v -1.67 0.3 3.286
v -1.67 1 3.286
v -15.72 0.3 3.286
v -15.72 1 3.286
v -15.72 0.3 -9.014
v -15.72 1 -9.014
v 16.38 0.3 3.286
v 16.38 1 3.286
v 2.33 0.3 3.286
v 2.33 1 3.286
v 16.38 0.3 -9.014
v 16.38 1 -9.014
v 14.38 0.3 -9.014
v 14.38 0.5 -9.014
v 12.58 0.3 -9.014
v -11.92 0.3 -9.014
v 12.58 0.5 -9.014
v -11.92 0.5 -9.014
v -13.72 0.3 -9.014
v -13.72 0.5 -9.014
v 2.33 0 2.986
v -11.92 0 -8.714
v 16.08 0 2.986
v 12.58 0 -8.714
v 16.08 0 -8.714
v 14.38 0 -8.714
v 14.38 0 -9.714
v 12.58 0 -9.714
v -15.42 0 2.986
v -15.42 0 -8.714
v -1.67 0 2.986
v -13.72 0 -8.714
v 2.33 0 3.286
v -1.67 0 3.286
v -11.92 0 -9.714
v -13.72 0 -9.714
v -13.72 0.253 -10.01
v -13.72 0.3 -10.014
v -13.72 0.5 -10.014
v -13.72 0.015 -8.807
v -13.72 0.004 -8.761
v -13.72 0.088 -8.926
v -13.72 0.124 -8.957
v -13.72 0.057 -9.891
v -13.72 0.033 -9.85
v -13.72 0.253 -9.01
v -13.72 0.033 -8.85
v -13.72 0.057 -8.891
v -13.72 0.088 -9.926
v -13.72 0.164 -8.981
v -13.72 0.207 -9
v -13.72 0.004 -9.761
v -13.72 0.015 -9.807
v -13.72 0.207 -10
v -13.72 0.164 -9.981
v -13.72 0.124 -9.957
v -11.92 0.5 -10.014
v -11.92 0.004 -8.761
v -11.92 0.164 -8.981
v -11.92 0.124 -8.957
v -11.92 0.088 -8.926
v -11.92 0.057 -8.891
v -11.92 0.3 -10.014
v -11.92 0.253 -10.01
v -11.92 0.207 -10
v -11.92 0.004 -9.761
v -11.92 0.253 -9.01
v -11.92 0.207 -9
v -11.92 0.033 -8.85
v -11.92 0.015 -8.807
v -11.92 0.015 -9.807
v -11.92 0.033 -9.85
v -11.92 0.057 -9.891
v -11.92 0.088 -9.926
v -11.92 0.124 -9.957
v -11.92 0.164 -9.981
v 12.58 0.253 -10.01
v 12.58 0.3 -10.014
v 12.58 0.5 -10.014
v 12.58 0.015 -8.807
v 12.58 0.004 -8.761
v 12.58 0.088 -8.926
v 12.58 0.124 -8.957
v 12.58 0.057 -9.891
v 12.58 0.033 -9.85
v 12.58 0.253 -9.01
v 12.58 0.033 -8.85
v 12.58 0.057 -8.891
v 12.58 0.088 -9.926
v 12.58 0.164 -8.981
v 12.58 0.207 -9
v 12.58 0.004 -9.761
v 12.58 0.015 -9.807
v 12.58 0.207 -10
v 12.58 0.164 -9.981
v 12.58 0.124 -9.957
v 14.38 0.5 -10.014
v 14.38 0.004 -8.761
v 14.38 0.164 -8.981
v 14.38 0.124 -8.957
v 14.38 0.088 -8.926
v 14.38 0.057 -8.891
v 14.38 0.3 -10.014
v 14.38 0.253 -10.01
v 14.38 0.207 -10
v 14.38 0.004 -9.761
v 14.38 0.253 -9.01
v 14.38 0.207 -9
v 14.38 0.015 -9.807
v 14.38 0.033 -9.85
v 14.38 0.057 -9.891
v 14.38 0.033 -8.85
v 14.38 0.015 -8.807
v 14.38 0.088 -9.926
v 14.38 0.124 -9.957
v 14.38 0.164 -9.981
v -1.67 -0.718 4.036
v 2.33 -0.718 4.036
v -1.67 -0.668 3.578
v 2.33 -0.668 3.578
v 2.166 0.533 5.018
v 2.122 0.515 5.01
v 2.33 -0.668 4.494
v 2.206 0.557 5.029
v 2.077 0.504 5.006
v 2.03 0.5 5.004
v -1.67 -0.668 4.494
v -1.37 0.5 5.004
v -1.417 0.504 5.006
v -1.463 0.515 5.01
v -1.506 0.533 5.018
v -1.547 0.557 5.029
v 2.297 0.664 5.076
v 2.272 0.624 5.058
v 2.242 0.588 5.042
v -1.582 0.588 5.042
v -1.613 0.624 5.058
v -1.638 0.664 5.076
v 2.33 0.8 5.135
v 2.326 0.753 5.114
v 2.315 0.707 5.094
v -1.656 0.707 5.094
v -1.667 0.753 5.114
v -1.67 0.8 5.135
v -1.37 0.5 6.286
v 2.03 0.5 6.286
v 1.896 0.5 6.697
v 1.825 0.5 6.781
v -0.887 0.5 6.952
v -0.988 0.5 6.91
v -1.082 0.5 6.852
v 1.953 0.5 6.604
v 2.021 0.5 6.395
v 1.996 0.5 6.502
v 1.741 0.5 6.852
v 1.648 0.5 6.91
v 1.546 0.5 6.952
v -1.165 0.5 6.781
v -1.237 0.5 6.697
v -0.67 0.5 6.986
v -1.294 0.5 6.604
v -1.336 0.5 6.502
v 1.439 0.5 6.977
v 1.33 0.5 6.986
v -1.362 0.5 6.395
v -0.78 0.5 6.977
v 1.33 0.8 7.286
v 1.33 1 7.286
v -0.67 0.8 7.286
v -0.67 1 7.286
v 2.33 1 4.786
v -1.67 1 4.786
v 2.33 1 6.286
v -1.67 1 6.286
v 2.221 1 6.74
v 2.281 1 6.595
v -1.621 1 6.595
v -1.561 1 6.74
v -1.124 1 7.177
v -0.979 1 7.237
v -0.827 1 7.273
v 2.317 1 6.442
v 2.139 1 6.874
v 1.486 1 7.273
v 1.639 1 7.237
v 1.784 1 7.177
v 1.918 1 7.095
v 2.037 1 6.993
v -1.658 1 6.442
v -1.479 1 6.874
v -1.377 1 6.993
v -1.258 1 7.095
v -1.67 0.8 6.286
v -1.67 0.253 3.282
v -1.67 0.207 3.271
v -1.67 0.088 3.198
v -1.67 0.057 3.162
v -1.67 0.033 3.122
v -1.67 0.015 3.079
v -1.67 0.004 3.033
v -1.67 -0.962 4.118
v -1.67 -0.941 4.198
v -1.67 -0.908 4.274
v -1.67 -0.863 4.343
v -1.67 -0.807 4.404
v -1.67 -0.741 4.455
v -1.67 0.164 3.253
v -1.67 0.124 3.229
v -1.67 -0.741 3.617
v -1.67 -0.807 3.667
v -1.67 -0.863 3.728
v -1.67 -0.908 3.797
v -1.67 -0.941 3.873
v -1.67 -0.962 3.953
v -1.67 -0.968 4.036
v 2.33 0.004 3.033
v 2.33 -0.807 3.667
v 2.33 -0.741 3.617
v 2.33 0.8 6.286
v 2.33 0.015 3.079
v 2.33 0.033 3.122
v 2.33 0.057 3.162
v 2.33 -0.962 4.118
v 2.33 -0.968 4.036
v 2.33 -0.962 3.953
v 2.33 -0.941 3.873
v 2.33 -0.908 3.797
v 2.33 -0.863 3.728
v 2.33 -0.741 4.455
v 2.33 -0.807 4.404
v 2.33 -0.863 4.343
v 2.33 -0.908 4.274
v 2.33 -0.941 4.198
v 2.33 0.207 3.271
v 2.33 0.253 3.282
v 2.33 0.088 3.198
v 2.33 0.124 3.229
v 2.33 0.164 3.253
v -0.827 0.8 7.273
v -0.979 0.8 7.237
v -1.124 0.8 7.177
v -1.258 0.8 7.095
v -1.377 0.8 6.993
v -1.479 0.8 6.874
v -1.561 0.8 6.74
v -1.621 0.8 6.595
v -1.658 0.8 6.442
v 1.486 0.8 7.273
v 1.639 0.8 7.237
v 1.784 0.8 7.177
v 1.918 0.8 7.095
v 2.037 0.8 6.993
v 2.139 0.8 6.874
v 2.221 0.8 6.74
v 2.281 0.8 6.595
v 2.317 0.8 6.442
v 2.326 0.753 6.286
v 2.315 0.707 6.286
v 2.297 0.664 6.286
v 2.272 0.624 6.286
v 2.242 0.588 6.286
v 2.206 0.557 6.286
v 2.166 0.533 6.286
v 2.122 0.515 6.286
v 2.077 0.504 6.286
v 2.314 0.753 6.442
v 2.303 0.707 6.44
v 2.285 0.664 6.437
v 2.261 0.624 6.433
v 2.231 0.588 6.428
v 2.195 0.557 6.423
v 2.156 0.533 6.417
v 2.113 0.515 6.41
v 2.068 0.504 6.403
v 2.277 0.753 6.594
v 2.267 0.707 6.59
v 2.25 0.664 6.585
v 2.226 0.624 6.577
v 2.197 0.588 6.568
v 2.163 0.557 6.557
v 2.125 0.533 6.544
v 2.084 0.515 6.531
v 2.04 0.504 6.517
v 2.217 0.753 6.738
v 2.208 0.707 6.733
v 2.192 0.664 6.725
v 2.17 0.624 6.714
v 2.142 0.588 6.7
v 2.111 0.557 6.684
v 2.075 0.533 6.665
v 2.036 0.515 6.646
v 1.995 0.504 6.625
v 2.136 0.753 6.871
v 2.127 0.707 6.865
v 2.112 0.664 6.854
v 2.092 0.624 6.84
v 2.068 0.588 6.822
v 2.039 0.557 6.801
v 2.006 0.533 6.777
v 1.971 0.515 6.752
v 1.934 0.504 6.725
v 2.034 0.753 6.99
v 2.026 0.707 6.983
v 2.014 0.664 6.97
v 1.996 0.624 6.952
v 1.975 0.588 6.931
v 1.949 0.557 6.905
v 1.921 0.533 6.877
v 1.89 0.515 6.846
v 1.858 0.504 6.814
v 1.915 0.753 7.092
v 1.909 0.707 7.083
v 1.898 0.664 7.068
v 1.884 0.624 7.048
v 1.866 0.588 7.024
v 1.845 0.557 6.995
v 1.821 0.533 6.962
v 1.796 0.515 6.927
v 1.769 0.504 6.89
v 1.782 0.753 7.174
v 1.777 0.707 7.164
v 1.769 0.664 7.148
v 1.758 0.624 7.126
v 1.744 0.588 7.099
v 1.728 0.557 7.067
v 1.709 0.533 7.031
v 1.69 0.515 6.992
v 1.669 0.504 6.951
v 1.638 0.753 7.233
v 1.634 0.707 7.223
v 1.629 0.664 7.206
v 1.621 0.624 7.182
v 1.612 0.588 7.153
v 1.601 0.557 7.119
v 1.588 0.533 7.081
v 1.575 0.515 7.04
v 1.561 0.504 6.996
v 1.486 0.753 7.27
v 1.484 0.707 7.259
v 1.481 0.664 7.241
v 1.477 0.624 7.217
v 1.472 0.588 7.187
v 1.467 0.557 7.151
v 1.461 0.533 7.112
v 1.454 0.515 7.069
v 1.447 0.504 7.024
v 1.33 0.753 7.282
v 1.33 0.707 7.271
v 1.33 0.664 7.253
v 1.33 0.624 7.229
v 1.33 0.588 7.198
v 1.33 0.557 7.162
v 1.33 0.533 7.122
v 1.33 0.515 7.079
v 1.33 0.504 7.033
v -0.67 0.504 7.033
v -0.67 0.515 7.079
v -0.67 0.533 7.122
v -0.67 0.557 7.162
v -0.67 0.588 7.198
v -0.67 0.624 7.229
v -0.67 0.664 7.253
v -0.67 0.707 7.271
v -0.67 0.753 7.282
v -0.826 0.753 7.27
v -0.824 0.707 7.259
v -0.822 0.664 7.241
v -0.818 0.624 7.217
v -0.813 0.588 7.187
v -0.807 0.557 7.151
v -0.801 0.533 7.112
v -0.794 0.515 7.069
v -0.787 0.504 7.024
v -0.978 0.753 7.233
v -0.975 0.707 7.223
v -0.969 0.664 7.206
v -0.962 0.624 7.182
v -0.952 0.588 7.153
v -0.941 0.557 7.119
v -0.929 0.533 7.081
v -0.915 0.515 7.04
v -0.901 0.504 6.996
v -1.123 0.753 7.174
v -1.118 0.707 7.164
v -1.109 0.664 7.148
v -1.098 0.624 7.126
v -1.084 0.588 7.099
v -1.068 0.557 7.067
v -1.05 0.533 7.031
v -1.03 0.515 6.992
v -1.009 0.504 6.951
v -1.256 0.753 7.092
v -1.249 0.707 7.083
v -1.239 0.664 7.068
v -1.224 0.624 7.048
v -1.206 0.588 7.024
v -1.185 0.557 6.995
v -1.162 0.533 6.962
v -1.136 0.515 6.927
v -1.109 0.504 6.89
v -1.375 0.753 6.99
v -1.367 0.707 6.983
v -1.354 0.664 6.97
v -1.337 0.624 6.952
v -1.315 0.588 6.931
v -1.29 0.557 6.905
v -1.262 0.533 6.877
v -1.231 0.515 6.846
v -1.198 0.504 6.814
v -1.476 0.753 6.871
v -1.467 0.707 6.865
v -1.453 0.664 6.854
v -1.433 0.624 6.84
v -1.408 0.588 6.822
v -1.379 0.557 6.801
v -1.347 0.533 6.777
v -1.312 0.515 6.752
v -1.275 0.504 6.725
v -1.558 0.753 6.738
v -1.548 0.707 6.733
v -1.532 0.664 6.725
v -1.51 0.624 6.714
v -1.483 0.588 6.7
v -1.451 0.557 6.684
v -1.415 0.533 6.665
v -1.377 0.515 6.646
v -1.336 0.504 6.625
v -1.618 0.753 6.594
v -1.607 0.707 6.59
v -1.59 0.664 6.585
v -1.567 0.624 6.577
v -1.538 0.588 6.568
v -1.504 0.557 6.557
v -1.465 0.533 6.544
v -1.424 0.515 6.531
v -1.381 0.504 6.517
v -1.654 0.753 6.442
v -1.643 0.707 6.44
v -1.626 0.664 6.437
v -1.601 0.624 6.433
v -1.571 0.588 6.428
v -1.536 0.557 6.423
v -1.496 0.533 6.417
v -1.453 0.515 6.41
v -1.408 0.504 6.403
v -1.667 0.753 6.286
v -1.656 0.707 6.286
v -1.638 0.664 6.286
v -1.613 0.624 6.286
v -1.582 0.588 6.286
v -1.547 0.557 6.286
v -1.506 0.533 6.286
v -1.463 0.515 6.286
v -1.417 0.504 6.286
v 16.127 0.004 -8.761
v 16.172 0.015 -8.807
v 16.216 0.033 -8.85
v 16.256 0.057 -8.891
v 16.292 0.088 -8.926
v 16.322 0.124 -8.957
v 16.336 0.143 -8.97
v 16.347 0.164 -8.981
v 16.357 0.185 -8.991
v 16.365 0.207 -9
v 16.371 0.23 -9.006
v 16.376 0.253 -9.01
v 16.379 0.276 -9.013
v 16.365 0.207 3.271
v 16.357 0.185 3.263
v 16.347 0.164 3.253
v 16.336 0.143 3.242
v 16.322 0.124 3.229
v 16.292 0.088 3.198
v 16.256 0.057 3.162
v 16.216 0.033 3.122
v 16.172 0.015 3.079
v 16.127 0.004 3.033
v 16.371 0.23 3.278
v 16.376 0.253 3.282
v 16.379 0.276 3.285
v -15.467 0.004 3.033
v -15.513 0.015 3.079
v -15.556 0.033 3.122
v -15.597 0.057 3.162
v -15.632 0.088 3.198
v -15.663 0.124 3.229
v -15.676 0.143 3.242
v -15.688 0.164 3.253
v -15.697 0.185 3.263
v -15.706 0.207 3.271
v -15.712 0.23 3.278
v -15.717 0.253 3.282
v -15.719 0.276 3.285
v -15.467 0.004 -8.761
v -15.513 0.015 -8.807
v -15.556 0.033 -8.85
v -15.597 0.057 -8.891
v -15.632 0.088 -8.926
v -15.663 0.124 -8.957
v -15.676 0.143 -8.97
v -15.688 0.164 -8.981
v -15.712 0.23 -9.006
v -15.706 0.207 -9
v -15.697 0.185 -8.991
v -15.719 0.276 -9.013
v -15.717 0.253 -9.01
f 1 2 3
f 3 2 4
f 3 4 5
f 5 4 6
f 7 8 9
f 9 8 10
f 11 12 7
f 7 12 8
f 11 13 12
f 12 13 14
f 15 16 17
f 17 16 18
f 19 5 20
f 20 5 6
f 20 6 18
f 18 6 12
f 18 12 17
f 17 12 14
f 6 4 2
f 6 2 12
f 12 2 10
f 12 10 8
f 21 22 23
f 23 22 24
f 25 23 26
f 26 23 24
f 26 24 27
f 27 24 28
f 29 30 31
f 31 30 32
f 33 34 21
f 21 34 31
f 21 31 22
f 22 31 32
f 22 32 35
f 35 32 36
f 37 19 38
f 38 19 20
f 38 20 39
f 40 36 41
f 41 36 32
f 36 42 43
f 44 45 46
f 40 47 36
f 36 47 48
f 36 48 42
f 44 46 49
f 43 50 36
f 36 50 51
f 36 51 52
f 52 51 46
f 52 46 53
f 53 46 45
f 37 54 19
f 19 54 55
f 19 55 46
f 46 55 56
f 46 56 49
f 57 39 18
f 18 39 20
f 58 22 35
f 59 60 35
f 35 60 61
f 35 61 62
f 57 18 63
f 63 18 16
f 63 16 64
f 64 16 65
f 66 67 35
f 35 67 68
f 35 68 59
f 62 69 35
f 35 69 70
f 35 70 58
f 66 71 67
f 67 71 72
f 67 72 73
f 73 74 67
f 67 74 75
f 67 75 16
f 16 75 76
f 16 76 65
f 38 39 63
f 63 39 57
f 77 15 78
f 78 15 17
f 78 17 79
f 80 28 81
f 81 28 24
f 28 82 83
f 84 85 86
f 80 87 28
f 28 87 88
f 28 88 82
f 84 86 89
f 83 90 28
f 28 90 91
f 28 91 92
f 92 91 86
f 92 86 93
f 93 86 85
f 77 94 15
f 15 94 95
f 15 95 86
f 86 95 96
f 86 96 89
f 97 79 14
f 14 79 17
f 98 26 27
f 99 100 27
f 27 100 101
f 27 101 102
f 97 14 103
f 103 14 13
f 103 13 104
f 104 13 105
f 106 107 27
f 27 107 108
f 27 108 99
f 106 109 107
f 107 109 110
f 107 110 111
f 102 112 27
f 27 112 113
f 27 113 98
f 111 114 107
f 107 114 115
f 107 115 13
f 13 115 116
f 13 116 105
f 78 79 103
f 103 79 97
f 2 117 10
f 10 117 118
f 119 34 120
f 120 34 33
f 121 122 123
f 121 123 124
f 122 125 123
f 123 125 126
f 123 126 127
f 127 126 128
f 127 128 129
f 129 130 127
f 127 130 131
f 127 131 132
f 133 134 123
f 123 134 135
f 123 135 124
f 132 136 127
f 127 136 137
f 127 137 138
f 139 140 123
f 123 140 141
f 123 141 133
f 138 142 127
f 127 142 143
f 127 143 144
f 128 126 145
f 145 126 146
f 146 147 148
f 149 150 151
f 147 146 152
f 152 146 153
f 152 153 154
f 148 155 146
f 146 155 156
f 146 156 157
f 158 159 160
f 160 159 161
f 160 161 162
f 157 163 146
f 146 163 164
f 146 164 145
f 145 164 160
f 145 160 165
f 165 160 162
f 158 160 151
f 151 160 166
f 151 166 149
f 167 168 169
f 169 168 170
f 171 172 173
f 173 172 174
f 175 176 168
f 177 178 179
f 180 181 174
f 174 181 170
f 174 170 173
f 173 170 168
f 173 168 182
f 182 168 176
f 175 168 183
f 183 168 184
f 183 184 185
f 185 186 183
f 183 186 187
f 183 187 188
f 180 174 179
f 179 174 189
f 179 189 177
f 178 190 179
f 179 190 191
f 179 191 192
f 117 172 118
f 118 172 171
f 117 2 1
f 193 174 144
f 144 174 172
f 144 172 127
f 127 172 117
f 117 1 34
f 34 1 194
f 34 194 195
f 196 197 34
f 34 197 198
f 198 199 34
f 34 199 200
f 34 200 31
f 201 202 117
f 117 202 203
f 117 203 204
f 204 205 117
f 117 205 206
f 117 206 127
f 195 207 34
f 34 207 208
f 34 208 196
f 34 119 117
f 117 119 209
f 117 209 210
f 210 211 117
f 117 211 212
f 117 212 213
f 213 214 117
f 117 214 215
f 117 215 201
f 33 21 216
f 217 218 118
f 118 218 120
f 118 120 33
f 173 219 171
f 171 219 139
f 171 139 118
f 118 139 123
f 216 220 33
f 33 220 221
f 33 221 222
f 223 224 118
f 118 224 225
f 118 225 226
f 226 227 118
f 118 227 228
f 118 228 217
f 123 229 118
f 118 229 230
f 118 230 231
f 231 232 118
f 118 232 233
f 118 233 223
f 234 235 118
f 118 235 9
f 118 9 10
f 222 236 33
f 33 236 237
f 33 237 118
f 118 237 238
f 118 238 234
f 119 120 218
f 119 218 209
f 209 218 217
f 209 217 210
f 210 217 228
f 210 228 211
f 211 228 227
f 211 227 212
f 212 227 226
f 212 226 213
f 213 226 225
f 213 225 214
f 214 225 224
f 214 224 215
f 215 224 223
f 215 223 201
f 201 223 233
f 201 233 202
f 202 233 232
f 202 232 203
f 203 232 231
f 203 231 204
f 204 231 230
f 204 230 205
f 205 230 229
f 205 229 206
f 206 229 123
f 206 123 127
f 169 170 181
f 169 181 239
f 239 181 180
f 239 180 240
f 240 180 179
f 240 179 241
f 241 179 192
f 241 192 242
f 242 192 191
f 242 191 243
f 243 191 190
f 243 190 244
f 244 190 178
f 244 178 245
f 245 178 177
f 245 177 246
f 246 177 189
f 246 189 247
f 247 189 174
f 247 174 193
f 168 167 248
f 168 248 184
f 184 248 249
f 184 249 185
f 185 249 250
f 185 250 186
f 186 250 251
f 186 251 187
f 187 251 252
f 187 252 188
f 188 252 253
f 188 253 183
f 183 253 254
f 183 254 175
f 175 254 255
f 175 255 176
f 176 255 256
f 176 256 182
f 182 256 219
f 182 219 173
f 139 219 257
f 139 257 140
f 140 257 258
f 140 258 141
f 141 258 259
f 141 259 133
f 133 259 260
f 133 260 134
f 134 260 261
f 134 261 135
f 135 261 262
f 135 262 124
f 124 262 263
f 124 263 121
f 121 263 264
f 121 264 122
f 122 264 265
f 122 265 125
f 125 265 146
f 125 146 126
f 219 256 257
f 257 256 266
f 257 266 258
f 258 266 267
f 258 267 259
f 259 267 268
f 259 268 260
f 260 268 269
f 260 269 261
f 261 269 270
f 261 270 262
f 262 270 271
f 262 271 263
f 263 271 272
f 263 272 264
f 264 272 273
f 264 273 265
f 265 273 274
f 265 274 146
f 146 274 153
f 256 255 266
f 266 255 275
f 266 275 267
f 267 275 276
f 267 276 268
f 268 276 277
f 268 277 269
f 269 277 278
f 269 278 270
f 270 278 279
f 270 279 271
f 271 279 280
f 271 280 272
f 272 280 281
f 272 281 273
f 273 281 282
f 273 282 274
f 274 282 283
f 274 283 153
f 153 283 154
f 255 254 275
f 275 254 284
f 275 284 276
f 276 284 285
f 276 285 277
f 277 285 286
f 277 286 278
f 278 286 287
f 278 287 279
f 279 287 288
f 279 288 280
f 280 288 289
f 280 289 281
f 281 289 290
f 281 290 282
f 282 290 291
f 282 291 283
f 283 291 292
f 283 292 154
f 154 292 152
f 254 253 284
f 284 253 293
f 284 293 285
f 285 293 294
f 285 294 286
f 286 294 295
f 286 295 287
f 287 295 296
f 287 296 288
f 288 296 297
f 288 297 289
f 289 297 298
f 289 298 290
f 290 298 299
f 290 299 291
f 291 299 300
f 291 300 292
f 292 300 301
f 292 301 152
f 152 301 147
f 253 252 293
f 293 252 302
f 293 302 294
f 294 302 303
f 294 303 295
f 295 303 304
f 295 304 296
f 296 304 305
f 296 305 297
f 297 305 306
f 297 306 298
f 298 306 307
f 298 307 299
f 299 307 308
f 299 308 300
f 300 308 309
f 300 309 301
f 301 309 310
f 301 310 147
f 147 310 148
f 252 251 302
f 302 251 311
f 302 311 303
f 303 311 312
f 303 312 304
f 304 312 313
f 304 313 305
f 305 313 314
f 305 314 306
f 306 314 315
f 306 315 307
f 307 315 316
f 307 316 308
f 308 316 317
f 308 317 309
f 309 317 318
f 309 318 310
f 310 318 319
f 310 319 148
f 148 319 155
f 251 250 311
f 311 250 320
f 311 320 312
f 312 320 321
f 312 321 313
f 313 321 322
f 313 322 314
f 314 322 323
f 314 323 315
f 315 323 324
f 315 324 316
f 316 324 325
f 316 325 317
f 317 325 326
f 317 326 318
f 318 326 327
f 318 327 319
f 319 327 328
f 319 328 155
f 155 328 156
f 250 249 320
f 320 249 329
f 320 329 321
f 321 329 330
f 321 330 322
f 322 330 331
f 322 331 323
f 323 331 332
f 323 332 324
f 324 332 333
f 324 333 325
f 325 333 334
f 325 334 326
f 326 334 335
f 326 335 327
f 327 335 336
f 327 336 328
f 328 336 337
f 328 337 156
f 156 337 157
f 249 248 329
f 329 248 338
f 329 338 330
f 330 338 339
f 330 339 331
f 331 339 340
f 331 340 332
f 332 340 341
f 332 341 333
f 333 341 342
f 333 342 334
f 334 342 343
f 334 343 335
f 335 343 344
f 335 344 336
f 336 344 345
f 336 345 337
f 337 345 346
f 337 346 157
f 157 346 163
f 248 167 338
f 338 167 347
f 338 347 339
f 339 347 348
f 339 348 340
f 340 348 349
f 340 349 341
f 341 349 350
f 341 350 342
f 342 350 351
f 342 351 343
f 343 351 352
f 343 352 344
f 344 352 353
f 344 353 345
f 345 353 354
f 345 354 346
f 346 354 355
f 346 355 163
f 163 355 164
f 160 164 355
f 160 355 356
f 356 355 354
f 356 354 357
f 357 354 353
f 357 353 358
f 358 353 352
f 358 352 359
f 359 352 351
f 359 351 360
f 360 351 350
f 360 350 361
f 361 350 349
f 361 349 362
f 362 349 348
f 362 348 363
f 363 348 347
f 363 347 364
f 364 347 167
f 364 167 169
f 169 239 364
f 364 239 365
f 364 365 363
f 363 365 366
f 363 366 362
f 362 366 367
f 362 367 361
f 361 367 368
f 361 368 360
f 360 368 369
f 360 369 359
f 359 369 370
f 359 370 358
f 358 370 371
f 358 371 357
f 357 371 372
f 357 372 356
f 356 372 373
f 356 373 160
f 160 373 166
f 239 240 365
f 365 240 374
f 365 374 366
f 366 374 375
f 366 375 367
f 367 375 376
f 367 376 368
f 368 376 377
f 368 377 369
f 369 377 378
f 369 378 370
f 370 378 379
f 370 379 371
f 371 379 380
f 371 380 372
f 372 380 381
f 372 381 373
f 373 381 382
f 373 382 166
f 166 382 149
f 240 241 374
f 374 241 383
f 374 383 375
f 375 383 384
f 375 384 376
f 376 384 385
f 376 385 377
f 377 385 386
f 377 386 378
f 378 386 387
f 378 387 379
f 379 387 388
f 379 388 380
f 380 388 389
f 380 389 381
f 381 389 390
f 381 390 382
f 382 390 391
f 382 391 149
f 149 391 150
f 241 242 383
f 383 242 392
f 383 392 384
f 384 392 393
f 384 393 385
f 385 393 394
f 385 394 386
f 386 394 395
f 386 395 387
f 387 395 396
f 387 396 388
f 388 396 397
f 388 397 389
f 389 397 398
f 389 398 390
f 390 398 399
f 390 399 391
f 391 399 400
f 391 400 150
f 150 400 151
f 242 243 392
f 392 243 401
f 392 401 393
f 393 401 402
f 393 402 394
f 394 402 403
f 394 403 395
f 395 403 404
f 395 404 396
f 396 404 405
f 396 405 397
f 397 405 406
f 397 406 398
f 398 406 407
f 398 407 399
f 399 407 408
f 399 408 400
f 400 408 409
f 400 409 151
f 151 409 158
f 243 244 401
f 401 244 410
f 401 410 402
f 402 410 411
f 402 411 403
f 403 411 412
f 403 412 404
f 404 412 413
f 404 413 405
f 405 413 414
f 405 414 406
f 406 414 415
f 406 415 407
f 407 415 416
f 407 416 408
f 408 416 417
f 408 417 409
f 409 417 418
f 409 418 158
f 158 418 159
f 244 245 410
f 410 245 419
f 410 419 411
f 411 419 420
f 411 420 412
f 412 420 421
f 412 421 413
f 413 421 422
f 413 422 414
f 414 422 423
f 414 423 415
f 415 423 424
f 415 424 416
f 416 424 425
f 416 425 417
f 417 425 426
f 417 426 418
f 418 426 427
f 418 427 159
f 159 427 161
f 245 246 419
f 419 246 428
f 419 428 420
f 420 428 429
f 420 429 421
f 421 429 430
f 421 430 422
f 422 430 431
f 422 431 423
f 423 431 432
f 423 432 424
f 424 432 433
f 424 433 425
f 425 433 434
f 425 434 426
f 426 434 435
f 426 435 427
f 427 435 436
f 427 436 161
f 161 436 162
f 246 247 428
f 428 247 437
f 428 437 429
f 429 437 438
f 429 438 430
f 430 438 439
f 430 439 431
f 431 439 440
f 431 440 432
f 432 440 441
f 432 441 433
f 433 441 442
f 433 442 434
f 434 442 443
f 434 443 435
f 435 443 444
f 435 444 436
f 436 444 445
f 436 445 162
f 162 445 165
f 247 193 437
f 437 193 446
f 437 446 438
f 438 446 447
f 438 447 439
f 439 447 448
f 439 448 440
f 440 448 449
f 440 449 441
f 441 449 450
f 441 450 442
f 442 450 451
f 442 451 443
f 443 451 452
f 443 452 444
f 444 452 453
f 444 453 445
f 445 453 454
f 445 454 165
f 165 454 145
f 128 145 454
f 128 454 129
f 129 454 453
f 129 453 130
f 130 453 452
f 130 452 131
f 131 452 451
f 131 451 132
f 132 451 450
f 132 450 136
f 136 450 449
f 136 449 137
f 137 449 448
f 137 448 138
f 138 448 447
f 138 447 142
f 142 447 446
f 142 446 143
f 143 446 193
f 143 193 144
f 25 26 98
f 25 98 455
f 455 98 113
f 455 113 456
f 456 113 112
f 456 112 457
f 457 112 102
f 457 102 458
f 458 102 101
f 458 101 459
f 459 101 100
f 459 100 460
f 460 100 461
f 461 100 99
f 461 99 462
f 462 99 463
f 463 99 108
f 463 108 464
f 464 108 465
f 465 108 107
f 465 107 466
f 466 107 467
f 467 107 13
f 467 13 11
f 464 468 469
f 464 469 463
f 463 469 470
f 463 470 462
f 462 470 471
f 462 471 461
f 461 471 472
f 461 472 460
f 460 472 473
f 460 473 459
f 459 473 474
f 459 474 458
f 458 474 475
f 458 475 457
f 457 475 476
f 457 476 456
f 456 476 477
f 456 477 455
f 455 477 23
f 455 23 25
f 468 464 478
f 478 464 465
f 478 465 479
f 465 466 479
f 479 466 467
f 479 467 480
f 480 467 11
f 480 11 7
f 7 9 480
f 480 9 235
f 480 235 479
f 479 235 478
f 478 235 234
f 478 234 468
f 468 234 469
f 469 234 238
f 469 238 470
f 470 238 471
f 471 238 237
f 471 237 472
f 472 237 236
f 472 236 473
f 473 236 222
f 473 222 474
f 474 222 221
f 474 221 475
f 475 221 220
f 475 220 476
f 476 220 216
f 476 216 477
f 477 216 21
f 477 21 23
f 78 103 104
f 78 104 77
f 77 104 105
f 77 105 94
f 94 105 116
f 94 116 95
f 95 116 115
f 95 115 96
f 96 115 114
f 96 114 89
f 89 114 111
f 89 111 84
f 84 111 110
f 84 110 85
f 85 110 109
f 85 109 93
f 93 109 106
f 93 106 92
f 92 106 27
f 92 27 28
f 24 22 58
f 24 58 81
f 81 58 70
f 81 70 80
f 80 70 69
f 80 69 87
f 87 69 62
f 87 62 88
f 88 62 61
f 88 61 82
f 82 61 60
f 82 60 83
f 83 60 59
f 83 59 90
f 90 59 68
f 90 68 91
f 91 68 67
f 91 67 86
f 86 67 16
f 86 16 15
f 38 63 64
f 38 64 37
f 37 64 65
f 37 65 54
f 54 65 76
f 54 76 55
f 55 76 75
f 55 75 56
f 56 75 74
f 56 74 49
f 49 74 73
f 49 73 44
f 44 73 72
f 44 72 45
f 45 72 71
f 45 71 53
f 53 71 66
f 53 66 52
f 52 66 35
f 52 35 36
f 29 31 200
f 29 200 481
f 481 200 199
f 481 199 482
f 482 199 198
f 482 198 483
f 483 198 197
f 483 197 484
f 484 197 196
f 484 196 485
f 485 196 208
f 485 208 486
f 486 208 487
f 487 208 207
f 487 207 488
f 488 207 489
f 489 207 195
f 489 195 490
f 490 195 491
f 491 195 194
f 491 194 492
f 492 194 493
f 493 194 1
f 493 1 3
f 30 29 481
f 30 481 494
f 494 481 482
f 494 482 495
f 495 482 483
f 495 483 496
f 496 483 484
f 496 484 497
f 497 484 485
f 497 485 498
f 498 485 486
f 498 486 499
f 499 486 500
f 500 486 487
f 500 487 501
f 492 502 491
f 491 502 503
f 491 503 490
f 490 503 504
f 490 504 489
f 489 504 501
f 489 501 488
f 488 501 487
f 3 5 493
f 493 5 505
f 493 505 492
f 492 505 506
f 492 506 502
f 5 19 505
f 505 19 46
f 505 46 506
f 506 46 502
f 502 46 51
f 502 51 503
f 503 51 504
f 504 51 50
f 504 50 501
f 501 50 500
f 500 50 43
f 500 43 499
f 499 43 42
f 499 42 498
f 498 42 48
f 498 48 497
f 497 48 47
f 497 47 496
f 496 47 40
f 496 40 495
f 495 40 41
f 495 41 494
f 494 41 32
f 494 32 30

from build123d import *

# Parameters (mm, degrees)
CROQUIS1_W              = 32.1
CROQUIS1_H              = 12.3
SALIENTE_EXTRUIR1_DEPTH = 1
CROQUIS2_W              = 1.8
CROQUIS2_H              = 0.5
SALIENTE_EXTRUIR2_DEPTH = 1
SALIENTE_EXTRUIR3_DEPTH = 2
REDONDEO2_R             = 0.5
REDONDEO3_R             = 1
REDONDEO4_R             = 0.3
REDONDEO6_R             = 0.3


with BuildPart() as part:
    # Croquis1 → Saliente-Extruir1 (new body)
    with BuildSketch(Plane(origin=(0, 0, 0), x_dir=(1, 0, 0), z_dir=(0, 1, 0))):
        with Locations((0.329771615, 2.864192496)):
            Rectangle(CROQUIS1_W, CROQUIS1_H)
    extrude(amount=SALIENTE_EXTRUIR1_DEPTH)

    # Croquis2 → Saliente-Extruir2 (add)
    with BuildSketch(Plane(origin=(-6.706035889, 0, -9.014192496), x_dir=(1, 0, 0), z_dir=(0, 0, 1))):
        with Locations((-6.114192496, 0.25)):
            Rectangle(CROQUIS2_W, CROQUIS2_H)
        with Locations((20.185807504, 0.25)):
            Rectangle(CROQUIS2_W, CROQUIS2_H)
    extrude(amount=-SALIENTE_EXTRUIR2_DEPTH)

    # Croquis4 → Saliente-Extruir3 (add, symmetric)
    with BuildSketch(Plane.ZY.offset(-0.329771615)):
        Polygon((3.285807504, 1), (3.285807504, 0), (4.035807504, -1.718465886), (5.004025394, 0.5), (7.285807504, 0.5), (7.285807504, 1), (4.785807504, 1), (4.035807504, -0.718465886), align=None)
    extrude(amount=SALIENTE_EXTRUIR3_DEPTH, both=True)

    # Redondeo2
    redondeo2_edges = [part.edges().sort_by_distance(p)[0] for p in [
        (0.329771615, -1.718465886, 4.035807504),
    ]]
    fillet(redondeo2_edges, radius=REDONDEO2_R)

    # Redondeo3
    redondeo3_edges = [part.edges().sort_by_distance(p)[0] for p in [
        (2.329771615, 0.75, 7.285807504),
        (-1.670228385, 0.75, 7.285807504),
    ]]
    fillet(redondeo3_edges, radius=REDONDEO3_R)

    # Redondeo4
    redondeo4_edges = [part.edges().sort_by_distance(p)[0] for p in [
        (2.329771615, 0.5, 5.644916449),
        (-1.670228385, 0.5, 5.644916449),
        (0.329771615, 0.5, 7.285807504),
        (2.036878396, 0.5, 6.992914285),
        (-1.377335166, 0.5, 6.992914285),
    ]]
    fillet(redondeo4_edges, radius=REDONDEO4_R)

    # Redondeo6
    redondeo6_edges = [part.edges().sort_by_distance(p)[0] for p in [
        (-14.720228385, 0, -9.014192496),
        (-12.820228385, 0, -10.014192496),
        (0.329771615, 0, -9.014192496),
        (13.479771615, 0, -10.014192496),
        (9.354771615, 0, 3.285807504),
        (15.379771615, 0, -9.014192496),
        (16.379771615, 0, -2.864192496),
        (-8.695228385, 0, 3.285807504),
        (-15.720228385, 0, -2.864192496),
    ]]
    fillet(redondeo6_edges, radius=REDONDEO6_R)


solid = part.part
